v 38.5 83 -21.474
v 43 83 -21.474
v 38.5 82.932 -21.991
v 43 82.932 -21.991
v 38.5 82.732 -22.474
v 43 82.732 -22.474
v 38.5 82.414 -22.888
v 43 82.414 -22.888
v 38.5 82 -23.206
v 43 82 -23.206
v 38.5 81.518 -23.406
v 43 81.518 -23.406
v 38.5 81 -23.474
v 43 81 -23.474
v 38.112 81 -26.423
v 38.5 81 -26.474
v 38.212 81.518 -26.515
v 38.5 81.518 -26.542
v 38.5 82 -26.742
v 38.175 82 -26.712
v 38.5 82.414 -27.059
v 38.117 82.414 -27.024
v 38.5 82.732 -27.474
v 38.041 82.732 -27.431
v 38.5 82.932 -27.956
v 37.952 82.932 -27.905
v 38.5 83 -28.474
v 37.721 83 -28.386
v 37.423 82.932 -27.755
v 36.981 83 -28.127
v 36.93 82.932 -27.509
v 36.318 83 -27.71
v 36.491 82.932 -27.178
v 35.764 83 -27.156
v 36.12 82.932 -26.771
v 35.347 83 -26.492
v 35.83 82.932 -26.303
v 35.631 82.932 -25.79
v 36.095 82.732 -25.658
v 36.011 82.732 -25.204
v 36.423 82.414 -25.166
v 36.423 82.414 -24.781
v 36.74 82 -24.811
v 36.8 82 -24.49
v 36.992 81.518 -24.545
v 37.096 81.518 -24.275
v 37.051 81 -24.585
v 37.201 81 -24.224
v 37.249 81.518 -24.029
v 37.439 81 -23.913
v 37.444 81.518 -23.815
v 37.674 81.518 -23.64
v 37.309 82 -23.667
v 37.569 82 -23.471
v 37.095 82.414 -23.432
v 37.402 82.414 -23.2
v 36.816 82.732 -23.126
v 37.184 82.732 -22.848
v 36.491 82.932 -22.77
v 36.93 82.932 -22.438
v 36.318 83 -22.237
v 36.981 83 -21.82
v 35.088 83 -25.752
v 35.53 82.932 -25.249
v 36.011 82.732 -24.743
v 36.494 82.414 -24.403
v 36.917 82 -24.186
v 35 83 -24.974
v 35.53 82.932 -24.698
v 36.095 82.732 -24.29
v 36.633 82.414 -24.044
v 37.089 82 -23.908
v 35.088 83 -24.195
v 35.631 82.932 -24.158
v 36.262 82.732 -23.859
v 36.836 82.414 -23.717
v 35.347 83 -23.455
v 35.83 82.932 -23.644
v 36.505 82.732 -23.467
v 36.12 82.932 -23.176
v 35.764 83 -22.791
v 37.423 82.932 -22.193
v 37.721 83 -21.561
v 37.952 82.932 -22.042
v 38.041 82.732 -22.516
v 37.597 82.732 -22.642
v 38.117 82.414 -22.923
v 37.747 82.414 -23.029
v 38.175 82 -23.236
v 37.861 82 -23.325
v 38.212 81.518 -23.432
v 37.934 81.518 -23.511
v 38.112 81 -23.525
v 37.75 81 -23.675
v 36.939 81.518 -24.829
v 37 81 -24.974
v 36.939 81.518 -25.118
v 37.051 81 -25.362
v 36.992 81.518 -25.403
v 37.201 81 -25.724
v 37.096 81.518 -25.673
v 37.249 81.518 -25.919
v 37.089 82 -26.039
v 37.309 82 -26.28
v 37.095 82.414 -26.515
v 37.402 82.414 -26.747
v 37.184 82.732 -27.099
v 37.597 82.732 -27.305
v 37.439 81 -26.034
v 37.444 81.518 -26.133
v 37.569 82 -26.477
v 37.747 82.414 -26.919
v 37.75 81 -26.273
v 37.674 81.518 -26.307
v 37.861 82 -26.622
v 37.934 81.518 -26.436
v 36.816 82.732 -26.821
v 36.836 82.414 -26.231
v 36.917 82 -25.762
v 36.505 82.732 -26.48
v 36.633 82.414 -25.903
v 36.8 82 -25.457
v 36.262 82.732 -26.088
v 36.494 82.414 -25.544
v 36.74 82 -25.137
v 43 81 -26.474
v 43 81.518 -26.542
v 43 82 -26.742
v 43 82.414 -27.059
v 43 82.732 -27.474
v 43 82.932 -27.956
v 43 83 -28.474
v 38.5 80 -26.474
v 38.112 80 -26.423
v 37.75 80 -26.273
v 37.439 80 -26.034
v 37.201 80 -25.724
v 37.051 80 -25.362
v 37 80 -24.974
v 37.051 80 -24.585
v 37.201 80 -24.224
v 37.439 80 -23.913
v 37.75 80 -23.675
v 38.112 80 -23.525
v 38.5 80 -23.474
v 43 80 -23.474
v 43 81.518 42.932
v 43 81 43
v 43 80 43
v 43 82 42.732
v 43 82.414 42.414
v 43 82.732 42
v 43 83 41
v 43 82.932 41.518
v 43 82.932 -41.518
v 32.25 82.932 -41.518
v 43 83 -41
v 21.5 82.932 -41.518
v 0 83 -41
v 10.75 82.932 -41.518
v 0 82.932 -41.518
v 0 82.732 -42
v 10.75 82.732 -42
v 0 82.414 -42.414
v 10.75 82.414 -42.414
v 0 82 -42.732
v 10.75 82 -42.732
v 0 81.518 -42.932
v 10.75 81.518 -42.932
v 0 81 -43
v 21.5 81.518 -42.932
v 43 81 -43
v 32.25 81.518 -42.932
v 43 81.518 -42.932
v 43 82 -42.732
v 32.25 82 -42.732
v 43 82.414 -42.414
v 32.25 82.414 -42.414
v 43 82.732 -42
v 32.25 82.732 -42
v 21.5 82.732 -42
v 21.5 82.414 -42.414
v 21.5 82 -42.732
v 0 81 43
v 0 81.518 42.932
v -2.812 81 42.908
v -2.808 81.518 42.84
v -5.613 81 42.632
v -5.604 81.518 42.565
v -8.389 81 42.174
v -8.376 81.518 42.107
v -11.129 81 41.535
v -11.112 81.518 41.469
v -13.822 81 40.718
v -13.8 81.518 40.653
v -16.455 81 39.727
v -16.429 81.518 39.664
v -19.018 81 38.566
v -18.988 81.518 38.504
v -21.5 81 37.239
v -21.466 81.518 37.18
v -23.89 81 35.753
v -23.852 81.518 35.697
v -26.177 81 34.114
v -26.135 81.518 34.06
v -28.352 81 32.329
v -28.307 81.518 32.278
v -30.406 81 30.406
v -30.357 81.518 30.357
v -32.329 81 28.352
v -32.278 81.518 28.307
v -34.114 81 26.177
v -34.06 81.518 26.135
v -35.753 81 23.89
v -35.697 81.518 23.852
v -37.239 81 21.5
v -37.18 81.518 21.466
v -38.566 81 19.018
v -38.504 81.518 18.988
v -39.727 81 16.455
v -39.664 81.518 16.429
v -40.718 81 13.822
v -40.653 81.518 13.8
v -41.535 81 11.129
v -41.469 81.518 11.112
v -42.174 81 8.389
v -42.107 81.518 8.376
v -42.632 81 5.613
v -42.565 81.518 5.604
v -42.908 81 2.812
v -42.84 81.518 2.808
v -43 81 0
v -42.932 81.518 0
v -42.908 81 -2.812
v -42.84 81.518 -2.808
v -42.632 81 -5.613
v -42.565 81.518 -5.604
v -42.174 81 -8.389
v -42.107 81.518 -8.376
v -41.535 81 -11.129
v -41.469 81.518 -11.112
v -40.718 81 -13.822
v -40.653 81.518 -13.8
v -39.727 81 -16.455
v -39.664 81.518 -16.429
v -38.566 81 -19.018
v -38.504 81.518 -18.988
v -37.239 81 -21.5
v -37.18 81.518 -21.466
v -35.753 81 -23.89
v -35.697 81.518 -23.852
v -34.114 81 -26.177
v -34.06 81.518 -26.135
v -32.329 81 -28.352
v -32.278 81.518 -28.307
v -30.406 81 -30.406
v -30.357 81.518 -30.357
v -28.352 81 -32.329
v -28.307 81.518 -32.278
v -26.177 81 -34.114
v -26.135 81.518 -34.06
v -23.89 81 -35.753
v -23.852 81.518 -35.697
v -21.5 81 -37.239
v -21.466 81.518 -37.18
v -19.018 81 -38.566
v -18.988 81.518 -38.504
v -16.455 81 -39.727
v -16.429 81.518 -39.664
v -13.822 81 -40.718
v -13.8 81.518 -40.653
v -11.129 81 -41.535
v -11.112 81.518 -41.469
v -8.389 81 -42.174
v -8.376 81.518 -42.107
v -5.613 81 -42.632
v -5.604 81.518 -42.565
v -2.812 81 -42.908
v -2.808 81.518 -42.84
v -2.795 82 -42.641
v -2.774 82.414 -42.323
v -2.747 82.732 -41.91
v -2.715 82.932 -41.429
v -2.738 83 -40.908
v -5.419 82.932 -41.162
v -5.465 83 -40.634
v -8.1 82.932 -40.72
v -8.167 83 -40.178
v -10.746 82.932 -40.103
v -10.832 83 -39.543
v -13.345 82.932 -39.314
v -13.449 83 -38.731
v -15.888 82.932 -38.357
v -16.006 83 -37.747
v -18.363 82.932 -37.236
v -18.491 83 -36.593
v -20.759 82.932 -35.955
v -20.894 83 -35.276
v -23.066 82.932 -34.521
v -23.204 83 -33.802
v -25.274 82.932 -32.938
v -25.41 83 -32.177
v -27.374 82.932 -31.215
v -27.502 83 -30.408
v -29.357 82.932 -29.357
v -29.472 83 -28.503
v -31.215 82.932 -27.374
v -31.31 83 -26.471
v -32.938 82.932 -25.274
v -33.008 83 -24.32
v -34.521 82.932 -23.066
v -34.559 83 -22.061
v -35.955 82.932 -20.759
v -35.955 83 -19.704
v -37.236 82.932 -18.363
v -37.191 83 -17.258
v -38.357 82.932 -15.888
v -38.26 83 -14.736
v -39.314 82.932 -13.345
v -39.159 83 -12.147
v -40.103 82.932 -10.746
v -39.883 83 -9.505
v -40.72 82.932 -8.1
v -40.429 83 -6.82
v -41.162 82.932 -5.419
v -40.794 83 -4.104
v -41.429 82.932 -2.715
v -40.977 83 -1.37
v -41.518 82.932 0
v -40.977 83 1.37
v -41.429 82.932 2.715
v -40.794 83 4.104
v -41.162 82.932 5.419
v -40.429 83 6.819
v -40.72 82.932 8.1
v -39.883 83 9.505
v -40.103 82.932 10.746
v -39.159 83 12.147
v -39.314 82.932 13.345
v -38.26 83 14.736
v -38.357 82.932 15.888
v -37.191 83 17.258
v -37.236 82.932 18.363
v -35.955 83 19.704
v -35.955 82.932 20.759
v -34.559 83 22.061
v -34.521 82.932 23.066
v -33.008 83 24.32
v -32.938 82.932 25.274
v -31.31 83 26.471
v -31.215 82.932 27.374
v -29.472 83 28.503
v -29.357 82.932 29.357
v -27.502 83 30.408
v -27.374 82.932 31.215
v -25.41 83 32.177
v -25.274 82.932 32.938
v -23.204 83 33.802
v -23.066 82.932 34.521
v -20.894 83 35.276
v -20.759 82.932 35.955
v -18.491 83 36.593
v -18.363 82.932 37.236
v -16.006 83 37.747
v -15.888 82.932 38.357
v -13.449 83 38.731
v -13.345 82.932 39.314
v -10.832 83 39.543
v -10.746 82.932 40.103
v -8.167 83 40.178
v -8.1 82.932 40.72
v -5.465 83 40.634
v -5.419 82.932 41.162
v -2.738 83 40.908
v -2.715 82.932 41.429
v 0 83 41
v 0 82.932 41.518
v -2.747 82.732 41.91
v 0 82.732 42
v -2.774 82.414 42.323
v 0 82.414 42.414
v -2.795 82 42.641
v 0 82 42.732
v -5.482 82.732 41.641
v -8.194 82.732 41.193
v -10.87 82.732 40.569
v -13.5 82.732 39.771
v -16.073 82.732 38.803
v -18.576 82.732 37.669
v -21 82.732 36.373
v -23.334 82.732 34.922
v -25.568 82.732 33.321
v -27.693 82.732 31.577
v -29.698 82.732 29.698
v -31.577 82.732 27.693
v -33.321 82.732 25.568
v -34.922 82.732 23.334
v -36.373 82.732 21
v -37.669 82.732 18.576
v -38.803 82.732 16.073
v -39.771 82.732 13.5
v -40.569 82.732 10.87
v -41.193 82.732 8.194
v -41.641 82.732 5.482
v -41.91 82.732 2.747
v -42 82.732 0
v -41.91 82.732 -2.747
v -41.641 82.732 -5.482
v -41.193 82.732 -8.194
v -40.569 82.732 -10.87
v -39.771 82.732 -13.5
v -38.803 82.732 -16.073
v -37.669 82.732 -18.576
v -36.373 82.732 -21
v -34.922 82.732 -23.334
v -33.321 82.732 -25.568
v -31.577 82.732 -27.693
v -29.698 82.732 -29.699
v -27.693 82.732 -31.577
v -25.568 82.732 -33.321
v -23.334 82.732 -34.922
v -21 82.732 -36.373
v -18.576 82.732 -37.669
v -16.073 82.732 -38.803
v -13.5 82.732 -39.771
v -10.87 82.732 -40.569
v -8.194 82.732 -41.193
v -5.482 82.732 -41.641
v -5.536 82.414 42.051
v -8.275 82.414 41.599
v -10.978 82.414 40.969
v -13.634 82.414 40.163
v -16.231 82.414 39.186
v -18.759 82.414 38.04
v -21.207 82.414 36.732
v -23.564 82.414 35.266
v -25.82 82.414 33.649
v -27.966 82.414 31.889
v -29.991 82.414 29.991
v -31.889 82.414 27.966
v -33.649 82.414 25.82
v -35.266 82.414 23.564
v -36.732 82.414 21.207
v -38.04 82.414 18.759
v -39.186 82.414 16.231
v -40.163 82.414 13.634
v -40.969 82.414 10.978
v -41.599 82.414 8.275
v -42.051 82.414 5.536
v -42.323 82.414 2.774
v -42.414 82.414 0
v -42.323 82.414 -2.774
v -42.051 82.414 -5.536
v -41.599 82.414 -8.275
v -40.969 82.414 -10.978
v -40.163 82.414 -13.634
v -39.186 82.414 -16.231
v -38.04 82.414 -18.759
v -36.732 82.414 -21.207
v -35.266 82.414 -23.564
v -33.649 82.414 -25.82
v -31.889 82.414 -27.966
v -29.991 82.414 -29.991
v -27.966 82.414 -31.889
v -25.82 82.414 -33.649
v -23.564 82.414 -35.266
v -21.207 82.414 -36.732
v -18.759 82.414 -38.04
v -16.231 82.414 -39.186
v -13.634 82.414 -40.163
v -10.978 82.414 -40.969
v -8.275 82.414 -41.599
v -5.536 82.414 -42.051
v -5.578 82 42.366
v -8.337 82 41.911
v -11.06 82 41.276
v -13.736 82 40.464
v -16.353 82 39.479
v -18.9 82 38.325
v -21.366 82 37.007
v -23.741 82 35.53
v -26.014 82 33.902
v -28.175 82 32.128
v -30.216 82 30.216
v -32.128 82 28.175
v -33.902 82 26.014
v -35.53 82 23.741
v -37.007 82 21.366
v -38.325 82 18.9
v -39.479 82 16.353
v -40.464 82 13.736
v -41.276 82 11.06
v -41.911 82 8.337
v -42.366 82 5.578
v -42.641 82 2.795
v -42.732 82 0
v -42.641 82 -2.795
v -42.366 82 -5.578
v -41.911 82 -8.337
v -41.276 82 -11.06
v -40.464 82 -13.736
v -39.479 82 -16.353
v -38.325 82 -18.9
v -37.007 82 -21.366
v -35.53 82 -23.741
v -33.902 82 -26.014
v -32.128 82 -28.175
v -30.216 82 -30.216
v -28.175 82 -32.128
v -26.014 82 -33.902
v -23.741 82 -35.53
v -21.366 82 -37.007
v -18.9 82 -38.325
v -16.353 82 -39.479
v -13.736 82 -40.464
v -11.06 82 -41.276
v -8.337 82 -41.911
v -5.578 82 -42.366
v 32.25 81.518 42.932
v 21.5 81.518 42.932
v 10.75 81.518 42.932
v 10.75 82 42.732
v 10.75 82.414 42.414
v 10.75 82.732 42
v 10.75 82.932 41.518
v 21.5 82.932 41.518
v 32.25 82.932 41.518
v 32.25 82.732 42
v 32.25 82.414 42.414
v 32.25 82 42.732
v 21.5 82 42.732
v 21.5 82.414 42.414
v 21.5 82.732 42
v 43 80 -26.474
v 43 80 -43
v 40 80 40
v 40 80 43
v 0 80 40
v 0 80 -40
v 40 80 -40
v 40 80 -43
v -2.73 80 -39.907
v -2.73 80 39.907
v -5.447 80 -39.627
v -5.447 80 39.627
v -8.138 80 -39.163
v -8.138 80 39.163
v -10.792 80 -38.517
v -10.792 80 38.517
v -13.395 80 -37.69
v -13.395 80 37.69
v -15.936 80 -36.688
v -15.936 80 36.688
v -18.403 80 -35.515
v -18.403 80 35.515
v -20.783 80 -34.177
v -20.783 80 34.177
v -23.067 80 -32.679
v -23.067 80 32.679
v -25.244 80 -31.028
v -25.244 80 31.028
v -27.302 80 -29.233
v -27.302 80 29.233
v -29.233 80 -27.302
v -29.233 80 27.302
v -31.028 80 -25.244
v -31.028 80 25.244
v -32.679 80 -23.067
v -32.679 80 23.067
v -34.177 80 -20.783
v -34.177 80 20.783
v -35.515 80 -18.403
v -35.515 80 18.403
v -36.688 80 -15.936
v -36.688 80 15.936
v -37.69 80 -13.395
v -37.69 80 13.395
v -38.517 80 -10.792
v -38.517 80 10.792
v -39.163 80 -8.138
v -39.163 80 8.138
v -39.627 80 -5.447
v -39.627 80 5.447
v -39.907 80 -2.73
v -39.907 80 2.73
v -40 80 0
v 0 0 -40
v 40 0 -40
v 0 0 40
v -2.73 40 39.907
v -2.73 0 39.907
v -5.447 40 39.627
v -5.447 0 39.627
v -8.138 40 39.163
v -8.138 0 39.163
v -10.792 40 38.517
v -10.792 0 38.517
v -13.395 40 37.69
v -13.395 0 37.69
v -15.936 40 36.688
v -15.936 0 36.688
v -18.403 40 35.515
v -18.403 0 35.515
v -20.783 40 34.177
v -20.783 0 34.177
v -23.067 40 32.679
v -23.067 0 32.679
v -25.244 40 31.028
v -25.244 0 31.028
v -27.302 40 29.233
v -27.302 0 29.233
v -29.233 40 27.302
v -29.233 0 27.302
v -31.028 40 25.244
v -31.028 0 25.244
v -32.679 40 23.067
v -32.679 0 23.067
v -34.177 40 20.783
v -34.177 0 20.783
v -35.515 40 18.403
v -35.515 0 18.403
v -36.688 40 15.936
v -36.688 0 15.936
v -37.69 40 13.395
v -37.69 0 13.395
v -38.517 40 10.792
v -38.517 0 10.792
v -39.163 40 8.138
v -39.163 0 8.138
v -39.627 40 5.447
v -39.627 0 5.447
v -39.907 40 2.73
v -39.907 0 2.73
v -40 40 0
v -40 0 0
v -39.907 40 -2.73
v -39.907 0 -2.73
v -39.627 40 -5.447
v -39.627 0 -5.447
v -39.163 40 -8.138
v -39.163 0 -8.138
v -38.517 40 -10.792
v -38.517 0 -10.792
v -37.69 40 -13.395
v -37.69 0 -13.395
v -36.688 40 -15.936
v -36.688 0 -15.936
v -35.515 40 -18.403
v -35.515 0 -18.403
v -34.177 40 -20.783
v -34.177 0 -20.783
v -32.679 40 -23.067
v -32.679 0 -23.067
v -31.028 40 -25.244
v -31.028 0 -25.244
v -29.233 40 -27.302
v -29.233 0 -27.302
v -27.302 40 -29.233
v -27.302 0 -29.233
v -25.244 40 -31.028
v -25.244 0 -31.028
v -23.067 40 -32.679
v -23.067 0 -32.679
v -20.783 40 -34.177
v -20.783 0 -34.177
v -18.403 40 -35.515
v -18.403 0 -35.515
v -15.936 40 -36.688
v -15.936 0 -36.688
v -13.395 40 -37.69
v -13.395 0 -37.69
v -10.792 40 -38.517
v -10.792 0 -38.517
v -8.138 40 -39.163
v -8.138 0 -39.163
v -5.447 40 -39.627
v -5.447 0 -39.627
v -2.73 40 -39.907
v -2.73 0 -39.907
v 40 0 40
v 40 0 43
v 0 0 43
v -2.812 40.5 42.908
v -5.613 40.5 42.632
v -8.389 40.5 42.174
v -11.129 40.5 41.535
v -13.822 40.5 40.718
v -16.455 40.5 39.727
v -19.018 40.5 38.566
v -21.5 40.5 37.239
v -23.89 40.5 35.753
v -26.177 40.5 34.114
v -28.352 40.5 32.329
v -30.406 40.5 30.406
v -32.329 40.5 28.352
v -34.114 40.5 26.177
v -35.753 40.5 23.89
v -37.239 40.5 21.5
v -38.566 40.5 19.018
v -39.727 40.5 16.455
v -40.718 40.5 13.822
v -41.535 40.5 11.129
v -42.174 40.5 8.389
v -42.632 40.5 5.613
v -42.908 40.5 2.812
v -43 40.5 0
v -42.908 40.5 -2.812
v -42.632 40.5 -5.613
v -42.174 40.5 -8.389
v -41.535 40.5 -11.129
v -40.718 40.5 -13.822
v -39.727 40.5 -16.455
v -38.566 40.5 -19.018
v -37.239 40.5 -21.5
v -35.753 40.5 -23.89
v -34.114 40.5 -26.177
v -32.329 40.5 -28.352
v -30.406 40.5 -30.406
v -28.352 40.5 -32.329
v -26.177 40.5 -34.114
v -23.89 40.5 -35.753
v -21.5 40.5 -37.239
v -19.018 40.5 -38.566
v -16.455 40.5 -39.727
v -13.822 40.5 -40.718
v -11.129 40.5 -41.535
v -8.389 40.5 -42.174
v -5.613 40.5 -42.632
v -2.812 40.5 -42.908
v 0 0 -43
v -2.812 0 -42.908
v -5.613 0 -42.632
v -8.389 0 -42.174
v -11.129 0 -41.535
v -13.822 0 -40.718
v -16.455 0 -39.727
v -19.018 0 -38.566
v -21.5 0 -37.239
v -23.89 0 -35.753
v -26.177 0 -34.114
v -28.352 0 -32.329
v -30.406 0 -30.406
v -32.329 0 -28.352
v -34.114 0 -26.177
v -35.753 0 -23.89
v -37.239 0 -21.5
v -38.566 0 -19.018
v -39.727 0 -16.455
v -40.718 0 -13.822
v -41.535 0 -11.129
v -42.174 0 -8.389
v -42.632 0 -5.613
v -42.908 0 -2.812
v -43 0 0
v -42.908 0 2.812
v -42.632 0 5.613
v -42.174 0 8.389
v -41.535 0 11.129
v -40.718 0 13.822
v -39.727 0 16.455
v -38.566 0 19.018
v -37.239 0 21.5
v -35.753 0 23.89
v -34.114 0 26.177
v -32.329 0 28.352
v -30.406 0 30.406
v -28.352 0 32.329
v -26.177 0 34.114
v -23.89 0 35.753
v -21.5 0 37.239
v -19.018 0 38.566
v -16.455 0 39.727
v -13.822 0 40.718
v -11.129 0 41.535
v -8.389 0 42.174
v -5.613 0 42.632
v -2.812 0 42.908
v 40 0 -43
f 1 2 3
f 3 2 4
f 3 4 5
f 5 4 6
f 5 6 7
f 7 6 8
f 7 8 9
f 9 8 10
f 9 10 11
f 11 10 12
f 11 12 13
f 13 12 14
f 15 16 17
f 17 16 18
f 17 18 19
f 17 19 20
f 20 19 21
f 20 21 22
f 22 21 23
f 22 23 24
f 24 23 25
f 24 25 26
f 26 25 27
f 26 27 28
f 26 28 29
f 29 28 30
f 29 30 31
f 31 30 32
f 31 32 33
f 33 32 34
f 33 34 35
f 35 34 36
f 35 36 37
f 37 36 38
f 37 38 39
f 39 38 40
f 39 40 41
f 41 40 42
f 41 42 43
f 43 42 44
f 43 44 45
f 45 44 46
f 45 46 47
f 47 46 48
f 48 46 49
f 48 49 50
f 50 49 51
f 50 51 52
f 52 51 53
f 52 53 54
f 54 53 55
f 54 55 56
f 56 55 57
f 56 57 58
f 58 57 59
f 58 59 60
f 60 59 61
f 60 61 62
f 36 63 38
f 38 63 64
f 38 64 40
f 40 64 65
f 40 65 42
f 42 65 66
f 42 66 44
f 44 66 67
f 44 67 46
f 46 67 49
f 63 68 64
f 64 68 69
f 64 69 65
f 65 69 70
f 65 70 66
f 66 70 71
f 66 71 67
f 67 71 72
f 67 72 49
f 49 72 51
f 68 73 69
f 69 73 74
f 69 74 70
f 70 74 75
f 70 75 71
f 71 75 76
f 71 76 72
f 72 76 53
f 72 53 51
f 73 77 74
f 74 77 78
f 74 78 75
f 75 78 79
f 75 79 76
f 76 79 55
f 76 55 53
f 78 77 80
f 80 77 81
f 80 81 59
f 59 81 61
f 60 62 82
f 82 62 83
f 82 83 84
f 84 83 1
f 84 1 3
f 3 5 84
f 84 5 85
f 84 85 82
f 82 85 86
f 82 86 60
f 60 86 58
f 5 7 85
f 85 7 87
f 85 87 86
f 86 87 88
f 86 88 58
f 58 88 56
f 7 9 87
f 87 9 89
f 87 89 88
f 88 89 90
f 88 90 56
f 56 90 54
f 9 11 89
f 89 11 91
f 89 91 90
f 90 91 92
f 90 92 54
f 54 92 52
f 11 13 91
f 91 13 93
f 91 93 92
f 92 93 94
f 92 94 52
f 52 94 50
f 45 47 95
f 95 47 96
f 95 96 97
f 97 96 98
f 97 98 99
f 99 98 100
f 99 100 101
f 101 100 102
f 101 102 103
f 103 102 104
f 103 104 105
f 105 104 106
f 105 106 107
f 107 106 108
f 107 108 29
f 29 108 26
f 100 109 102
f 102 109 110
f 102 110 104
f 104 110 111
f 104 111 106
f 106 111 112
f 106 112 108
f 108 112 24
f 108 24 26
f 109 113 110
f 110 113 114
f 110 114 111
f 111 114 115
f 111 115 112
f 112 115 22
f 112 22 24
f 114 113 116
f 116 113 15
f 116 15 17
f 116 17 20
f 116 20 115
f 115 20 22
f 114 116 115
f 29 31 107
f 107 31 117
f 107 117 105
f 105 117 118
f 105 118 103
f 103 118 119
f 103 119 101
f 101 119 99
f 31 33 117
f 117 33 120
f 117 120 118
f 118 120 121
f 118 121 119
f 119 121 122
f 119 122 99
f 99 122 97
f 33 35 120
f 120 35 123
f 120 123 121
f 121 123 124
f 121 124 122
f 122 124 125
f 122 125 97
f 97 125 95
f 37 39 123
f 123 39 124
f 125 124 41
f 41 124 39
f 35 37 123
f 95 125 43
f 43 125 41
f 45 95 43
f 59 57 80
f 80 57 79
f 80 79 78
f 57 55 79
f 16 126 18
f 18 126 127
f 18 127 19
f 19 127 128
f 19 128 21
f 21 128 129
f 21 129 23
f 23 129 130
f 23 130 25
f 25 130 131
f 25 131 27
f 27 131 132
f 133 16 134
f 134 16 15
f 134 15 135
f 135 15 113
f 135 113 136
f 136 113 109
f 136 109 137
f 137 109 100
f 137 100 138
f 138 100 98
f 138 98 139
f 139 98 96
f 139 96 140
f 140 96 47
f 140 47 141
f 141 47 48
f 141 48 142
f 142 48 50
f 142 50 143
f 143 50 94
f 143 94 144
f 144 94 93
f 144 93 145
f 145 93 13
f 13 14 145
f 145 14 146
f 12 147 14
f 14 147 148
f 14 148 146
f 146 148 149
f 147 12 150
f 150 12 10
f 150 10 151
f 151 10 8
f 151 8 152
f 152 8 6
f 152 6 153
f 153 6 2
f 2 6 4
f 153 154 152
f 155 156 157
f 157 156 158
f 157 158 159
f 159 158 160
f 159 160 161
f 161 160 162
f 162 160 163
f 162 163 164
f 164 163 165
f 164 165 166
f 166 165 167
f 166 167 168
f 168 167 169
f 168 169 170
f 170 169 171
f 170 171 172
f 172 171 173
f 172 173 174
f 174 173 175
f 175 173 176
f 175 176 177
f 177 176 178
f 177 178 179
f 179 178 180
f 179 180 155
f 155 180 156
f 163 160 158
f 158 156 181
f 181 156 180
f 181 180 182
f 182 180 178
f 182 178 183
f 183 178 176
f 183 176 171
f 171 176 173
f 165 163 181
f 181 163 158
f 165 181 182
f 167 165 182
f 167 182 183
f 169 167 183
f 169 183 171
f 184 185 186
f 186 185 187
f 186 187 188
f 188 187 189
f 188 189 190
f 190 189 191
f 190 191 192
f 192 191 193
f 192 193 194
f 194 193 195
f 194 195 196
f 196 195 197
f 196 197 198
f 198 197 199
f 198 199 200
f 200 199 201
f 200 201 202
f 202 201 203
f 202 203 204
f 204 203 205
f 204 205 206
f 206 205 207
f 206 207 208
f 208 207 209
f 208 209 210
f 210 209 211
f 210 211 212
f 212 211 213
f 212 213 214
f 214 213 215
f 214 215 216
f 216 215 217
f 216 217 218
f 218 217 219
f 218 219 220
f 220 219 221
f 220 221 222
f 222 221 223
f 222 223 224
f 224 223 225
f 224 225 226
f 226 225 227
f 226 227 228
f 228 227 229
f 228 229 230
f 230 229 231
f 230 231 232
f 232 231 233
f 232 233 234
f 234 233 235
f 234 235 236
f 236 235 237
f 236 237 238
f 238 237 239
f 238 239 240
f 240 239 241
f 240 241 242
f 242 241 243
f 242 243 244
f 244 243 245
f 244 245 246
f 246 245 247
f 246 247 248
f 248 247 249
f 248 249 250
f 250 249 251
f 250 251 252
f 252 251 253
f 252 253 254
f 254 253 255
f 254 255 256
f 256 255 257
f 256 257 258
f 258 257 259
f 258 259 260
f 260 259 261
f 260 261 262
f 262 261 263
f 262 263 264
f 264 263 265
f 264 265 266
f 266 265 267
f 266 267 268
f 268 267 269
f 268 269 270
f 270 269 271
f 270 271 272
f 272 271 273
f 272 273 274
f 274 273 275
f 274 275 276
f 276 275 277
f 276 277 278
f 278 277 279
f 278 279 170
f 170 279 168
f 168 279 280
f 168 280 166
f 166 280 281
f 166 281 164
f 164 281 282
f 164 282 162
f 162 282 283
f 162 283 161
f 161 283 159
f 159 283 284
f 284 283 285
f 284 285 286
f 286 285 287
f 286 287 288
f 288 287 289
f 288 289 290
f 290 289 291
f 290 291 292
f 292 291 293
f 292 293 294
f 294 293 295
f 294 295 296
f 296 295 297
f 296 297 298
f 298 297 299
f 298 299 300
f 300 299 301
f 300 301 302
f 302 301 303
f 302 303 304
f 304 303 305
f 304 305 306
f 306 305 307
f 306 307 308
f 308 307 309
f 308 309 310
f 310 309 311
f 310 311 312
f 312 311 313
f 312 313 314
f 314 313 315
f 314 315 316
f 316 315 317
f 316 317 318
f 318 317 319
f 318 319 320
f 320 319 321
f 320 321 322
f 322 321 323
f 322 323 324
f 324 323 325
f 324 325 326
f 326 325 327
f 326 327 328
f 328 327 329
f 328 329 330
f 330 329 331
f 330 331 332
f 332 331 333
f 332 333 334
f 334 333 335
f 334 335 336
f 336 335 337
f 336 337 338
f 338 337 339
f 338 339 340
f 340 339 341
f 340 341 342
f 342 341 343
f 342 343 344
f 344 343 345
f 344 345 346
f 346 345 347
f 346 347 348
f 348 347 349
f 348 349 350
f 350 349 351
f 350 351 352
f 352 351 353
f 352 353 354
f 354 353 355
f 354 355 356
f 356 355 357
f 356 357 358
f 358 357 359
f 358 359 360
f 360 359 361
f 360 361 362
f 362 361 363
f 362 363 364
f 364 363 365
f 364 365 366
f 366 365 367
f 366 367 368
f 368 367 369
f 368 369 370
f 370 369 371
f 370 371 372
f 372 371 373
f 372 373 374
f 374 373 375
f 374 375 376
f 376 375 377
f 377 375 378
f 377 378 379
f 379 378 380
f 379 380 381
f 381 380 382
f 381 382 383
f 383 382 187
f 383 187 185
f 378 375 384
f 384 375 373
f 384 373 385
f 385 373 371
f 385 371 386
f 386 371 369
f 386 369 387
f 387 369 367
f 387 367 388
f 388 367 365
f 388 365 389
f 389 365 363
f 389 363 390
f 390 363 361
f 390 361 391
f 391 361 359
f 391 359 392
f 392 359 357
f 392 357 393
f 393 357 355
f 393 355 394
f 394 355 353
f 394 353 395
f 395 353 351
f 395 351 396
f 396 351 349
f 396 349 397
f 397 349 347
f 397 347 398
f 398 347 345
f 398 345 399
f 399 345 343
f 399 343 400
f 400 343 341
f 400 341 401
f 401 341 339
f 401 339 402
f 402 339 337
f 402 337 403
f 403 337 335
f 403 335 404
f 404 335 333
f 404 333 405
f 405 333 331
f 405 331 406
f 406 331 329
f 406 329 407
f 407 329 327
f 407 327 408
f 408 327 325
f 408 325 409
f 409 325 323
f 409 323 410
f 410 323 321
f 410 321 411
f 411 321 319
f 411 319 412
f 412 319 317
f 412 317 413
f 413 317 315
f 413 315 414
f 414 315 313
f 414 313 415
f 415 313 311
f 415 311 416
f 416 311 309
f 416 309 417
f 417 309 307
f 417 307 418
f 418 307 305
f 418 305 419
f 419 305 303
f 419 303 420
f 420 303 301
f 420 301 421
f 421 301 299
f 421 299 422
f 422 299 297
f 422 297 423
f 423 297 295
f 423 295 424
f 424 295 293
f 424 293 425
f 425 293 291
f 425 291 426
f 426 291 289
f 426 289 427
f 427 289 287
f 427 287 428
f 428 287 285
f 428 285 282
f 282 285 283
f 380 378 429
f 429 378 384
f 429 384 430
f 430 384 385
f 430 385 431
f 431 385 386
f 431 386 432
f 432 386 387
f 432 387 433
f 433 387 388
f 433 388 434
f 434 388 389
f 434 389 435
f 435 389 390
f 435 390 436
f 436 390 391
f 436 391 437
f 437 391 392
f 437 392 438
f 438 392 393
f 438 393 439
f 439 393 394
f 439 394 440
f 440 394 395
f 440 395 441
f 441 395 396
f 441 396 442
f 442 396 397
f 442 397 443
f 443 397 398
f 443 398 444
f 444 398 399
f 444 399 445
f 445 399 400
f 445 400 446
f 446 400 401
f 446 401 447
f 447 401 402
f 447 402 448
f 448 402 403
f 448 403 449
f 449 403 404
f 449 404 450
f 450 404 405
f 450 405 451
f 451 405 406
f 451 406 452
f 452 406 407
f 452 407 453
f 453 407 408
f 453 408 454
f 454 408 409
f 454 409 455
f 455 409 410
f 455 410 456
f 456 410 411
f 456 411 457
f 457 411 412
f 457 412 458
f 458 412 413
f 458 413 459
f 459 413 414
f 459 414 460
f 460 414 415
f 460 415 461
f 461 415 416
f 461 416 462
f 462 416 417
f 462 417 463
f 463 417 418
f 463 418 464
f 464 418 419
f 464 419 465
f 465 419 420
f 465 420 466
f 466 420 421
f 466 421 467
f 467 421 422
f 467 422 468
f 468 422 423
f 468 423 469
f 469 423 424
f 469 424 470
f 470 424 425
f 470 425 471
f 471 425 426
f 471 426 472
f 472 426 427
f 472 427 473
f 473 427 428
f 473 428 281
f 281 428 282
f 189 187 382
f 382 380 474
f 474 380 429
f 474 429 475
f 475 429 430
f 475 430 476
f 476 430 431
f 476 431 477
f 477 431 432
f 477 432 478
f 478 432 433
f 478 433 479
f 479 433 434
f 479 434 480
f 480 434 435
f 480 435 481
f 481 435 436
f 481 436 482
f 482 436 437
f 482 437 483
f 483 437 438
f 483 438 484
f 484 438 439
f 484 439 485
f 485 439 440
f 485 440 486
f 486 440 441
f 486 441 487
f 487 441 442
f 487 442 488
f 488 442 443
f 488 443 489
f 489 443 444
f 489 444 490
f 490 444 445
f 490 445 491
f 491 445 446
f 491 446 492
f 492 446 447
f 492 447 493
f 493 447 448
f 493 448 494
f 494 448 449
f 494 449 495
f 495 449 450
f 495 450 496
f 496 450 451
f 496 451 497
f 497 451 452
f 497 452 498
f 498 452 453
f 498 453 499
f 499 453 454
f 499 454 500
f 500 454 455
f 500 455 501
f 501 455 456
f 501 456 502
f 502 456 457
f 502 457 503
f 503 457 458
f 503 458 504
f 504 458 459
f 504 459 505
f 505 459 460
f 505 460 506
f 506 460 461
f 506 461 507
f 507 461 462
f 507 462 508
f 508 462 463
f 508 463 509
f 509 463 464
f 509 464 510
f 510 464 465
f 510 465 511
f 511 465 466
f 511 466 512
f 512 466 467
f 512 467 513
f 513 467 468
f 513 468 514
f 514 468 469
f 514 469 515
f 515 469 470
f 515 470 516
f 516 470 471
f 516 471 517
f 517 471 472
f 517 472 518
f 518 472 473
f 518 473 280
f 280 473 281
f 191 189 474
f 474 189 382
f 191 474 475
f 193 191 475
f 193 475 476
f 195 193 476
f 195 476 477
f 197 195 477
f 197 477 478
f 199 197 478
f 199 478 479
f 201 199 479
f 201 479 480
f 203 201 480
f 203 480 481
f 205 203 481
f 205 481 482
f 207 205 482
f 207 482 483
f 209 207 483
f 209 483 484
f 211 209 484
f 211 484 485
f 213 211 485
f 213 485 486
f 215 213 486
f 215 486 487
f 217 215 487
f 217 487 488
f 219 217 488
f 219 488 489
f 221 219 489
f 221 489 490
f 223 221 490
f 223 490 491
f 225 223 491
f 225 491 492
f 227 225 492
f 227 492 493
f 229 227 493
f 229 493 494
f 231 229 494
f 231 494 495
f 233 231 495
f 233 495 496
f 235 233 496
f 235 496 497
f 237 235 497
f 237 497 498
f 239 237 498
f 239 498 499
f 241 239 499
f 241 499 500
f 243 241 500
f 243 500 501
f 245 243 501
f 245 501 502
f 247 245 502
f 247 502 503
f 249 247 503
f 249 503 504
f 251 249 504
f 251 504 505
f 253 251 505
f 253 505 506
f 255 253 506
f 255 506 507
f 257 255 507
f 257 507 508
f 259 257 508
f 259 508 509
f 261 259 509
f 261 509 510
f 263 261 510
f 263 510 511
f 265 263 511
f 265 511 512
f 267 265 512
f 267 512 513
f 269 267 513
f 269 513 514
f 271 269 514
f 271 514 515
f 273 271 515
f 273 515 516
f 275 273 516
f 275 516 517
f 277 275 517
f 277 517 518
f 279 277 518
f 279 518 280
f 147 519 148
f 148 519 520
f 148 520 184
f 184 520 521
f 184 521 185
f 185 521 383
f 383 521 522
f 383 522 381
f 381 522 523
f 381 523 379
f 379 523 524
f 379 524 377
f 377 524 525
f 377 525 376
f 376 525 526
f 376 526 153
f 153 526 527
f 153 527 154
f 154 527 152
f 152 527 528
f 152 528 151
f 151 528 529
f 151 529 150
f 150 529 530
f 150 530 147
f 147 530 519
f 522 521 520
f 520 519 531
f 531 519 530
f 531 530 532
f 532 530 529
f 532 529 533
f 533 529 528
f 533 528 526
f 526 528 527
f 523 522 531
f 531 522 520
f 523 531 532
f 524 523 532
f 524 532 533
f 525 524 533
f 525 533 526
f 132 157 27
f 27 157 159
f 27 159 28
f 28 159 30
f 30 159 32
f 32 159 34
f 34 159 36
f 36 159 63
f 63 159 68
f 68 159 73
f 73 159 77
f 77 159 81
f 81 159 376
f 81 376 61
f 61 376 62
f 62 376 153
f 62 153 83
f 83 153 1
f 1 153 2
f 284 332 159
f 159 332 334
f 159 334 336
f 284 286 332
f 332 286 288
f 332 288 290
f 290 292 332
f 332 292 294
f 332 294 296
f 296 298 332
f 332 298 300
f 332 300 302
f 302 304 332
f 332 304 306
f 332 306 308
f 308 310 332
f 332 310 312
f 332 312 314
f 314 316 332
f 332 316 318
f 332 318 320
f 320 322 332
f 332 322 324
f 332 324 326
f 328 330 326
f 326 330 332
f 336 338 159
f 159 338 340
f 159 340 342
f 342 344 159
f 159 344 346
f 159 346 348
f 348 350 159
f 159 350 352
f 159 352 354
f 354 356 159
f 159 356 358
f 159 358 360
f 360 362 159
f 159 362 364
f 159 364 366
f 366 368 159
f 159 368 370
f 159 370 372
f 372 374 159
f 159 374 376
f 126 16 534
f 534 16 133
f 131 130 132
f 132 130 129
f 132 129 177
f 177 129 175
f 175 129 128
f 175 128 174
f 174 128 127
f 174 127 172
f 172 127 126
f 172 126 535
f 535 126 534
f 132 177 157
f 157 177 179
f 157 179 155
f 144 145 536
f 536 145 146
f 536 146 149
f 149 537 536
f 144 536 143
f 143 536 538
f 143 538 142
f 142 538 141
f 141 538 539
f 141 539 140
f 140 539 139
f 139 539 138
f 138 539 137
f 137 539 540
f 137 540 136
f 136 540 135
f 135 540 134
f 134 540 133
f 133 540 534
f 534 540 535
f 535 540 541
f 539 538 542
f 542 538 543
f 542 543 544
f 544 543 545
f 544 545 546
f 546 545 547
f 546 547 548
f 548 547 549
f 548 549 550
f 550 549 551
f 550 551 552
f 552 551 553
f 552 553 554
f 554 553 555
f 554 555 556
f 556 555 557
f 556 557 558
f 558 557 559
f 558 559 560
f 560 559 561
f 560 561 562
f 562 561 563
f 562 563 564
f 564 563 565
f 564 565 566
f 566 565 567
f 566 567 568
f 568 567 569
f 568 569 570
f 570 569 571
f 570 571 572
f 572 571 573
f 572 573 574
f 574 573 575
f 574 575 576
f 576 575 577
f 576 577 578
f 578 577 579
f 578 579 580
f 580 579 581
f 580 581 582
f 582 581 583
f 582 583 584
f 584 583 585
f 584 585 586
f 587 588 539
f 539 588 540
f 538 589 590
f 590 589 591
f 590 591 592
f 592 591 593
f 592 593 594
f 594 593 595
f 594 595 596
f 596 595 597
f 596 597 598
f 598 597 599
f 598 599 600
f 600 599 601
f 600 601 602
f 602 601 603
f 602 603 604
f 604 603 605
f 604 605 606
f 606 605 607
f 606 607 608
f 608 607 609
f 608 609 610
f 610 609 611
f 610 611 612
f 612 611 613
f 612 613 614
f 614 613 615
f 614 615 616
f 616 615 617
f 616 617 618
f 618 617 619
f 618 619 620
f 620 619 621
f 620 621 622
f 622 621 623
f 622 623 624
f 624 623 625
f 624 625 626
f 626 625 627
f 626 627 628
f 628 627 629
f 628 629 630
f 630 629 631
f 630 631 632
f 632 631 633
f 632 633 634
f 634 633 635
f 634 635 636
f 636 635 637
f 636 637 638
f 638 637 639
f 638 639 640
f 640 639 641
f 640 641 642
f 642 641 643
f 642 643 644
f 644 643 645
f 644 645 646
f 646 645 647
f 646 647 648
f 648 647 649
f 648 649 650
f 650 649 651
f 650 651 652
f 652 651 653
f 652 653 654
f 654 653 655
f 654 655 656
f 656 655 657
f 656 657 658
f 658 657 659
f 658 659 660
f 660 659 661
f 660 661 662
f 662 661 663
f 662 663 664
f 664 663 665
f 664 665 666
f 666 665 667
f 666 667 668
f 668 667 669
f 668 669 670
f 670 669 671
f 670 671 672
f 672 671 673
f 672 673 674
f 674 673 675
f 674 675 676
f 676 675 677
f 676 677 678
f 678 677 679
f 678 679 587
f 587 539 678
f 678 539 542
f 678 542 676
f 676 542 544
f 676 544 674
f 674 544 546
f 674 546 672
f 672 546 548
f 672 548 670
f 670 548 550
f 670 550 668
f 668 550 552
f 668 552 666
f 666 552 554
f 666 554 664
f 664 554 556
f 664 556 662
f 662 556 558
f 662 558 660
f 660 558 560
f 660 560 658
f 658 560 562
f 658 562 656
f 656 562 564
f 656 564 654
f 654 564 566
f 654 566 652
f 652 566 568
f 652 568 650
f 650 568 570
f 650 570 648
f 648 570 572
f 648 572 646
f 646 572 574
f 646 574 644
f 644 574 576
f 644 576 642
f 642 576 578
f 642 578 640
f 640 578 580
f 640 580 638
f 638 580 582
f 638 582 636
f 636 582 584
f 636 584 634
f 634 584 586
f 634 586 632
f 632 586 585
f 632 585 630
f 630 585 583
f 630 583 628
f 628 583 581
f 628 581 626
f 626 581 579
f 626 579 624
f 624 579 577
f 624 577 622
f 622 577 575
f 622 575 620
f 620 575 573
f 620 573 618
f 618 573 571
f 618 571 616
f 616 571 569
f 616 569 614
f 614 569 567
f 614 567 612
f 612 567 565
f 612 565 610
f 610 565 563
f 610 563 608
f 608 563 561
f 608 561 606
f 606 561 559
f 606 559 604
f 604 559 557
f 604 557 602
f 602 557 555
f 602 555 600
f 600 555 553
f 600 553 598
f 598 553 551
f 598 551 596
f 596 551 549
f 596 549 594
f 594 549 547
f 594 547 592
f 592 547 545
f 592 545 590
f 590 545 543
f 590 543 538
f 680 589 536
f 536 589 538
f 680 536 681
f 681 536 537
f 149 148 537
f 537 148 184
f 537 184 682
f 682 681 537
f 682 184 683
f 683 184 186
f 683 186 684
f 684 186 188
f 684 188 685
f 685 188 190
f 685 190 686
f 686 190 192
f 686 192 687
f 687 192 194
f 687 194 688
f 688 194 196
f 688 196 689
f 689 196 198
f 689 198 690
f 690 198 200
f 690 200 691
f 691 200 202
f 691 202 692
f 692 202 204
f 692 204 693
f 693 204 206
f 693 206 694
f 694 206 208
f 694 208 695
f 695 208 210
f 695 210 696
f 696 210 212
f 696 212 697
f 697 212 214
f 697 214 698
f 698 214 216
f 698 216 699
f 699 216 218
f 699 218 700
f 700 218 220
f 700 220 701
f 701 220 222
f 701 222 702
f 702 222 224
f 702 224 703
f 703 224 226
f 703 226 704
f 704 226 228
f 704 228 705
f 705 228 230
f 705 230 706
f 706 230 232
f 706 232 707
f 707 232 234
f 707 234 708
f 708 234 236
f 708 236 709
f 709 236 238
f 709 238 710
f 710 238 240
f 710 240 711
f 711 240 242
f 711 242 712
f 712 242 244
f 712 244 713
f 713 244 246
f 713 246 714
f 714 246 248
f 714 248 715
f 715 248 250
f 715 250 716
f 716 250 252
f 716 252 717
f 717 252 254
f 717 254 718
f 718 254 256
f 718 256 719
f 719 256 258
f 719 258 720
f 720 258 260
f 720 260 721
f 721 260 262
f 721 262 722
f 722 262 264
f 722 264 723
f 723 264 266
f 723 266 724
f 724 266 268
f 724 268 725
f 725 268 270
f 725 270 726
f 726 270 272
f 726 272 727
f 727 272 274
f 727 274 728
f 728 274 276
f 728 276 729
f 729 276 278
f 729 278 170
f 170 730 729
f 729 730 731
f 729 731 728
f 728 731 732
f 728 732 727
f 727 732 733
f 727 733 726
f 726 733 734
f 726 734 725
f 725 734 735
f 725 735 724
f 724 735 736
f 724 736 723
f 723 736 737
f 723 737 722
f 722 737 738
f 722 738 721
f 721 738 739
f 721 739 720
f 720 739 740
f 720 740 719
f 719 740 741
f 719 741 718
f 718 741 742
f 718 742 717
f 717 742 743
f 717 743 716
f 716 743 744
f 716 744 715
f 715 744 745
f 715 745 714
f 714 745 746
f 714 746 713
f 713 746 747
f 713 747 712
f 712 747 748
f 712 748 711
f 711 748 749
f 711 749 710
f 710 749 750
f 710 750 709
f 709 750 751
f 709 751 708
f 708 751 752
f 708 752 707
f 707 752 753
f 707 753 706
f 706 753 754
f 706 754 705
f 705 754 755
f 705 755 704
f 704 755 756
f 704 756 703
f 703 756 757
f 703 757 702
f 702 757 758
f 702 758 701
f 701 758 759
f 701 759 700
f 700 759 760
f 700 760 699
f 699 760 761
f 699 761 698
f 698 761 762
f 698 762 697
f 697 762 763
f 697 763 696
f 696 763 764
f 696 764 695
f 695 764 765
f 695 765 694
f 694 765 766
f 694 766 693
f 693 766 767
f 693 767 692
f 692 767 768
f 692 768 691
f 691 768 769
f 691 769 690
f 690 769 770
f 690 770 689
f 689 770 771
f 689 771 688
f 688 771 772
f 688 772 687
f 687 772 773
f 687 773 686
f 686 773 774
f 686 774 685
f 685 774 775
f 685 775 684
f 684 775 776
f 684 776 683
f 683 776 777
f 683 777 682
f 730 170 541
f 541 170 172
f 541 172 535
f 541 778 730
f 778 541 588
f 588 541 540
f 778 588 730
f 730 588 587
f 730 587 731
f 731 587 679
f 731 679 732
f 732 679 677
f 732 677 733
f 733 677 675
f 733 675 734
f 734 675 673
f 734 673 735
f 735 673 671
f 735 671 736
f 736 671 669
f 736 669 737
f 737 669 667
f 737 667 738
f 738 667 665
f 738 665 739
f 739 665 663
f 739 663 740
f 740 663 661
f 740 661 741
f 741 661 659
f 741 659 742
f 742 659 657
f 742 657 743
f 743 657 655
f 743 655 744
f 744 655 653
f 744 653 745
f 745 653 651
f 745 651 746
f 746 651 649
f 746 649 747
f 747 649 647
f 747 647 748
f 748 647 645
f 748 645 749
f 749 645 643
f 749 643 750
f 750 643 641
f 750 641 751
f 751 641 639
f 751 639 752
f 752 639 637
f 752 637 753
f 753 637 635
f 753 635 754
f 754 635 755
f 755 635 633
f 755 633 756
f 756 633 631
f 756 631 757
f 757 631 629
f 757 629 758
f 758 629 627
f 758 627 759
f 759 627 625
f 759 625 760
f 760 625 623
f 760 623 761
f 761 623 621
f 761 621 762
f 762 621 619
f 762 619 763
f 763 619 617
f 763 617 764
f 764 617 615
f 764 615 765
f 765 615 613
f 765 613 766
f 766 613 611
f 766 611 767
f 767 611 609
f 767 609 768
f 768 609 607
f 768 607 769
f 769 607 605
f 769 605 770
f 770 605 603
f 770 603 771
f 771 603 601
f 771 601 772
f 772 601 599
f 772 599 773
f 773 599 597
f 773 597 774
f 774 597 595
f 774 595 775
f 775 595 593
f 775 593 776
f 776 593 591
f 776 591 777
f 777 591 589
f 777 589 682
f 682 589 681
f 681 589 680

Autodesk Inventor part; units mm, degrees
ref_plane "YZ Plane" through (0, 0, 0) normal (1, 0, 0) x (0, 1, 0)
ref_plane "XZ Plane" through (0, 0, 0) normal (0, 1, 0) x (-1, 0, 0)
ref_plane "XY Plane" through (0, 0, 0) normal (0, 0, 1) x (1, 0, 0)
sketch "Sketch1" plane through (0, 0, 0) normal (0, 1, 0) x (-1, 0, 0)
  line L0 (0, 40) -> (-35, 40)
  line L1 (-35, -40) -> (0, -40)
  arc A0 (0, -40) -> (0, 40) centre (0, 0) ccw
  line L2 (-35, 43) -> (0, 43)
  arc A1 (0, -43) -> (0, 43) centre (0, 0) ccw
  line L3 (0, -43) -> (-35, -43)
  line L4 (-35, 43) -> (-40, 43)
  line L5 (-40, 43) -> (-40, 40)
  line L6 (-40, 40) -> (-35, 40)
  line L7 (-35, -40) -> (-40, -40)
  line L8 (-40, -40) -> (-40, -43)
  line L9 (-40, -43) -> (-35, -43)
  dimension "d7" = 3
extrude "Extrusion1" add sketch "Sketch1" along normal blind 80
sketch "Sketch2" plane through (0, 80, 0) normal (0, 1, 0) x (1, 0, 0)
  line L0 (40, 43) -> (0, 43) projected
  arc A0 (0, 43) -> (0, -43) centre (0, 0) ccw projected
  line L1 (0, -43) -> (40, -43) projected
  line L2 (40, -43) -> (43, -43)
  line L3 (43, -43) -> (43, -40)
  line L4 (0, 40) -> (40, 40) projected
  line L5 (43, 40) -> (43, 43)
  line L6 (43, 43) -> (40, 43)
  line L7 (43, -40) -> (43, 40)
extrude "Extrusion2" add sketch "Sketch2" along normal blind 3
sketch "Sketch3" plane through (0, 83, 0) normal (0, 1, 0) x (1, 0, 0)
  line L0 (43, -43) -> (43, 43) projected
  line L1 (43, 23.4737) -> (38.5, 23.4737)
  line L2 (38.5, 26.4737) -> (43, 26.4737)
  line L3 (43, 26.4737) -> (43, 23.4737)
  arc A0 (38.5, 26.4737) -> (38.5, 23.4737) centre (38.5, 24.9737) ccw
extrude "Extrusion3" cut sketch "Sketch3" against normal blind 3
fillet "Fillet1" radius 2 6 edges at (21.5, 83, 43) (21.5, 83, -43) (-43, 83, 0) (37, 83, -24.9737) (40.75, 83, -26.4737) (40.75, 83, -23.4737)
properties part number "Telo_3DPrint"
